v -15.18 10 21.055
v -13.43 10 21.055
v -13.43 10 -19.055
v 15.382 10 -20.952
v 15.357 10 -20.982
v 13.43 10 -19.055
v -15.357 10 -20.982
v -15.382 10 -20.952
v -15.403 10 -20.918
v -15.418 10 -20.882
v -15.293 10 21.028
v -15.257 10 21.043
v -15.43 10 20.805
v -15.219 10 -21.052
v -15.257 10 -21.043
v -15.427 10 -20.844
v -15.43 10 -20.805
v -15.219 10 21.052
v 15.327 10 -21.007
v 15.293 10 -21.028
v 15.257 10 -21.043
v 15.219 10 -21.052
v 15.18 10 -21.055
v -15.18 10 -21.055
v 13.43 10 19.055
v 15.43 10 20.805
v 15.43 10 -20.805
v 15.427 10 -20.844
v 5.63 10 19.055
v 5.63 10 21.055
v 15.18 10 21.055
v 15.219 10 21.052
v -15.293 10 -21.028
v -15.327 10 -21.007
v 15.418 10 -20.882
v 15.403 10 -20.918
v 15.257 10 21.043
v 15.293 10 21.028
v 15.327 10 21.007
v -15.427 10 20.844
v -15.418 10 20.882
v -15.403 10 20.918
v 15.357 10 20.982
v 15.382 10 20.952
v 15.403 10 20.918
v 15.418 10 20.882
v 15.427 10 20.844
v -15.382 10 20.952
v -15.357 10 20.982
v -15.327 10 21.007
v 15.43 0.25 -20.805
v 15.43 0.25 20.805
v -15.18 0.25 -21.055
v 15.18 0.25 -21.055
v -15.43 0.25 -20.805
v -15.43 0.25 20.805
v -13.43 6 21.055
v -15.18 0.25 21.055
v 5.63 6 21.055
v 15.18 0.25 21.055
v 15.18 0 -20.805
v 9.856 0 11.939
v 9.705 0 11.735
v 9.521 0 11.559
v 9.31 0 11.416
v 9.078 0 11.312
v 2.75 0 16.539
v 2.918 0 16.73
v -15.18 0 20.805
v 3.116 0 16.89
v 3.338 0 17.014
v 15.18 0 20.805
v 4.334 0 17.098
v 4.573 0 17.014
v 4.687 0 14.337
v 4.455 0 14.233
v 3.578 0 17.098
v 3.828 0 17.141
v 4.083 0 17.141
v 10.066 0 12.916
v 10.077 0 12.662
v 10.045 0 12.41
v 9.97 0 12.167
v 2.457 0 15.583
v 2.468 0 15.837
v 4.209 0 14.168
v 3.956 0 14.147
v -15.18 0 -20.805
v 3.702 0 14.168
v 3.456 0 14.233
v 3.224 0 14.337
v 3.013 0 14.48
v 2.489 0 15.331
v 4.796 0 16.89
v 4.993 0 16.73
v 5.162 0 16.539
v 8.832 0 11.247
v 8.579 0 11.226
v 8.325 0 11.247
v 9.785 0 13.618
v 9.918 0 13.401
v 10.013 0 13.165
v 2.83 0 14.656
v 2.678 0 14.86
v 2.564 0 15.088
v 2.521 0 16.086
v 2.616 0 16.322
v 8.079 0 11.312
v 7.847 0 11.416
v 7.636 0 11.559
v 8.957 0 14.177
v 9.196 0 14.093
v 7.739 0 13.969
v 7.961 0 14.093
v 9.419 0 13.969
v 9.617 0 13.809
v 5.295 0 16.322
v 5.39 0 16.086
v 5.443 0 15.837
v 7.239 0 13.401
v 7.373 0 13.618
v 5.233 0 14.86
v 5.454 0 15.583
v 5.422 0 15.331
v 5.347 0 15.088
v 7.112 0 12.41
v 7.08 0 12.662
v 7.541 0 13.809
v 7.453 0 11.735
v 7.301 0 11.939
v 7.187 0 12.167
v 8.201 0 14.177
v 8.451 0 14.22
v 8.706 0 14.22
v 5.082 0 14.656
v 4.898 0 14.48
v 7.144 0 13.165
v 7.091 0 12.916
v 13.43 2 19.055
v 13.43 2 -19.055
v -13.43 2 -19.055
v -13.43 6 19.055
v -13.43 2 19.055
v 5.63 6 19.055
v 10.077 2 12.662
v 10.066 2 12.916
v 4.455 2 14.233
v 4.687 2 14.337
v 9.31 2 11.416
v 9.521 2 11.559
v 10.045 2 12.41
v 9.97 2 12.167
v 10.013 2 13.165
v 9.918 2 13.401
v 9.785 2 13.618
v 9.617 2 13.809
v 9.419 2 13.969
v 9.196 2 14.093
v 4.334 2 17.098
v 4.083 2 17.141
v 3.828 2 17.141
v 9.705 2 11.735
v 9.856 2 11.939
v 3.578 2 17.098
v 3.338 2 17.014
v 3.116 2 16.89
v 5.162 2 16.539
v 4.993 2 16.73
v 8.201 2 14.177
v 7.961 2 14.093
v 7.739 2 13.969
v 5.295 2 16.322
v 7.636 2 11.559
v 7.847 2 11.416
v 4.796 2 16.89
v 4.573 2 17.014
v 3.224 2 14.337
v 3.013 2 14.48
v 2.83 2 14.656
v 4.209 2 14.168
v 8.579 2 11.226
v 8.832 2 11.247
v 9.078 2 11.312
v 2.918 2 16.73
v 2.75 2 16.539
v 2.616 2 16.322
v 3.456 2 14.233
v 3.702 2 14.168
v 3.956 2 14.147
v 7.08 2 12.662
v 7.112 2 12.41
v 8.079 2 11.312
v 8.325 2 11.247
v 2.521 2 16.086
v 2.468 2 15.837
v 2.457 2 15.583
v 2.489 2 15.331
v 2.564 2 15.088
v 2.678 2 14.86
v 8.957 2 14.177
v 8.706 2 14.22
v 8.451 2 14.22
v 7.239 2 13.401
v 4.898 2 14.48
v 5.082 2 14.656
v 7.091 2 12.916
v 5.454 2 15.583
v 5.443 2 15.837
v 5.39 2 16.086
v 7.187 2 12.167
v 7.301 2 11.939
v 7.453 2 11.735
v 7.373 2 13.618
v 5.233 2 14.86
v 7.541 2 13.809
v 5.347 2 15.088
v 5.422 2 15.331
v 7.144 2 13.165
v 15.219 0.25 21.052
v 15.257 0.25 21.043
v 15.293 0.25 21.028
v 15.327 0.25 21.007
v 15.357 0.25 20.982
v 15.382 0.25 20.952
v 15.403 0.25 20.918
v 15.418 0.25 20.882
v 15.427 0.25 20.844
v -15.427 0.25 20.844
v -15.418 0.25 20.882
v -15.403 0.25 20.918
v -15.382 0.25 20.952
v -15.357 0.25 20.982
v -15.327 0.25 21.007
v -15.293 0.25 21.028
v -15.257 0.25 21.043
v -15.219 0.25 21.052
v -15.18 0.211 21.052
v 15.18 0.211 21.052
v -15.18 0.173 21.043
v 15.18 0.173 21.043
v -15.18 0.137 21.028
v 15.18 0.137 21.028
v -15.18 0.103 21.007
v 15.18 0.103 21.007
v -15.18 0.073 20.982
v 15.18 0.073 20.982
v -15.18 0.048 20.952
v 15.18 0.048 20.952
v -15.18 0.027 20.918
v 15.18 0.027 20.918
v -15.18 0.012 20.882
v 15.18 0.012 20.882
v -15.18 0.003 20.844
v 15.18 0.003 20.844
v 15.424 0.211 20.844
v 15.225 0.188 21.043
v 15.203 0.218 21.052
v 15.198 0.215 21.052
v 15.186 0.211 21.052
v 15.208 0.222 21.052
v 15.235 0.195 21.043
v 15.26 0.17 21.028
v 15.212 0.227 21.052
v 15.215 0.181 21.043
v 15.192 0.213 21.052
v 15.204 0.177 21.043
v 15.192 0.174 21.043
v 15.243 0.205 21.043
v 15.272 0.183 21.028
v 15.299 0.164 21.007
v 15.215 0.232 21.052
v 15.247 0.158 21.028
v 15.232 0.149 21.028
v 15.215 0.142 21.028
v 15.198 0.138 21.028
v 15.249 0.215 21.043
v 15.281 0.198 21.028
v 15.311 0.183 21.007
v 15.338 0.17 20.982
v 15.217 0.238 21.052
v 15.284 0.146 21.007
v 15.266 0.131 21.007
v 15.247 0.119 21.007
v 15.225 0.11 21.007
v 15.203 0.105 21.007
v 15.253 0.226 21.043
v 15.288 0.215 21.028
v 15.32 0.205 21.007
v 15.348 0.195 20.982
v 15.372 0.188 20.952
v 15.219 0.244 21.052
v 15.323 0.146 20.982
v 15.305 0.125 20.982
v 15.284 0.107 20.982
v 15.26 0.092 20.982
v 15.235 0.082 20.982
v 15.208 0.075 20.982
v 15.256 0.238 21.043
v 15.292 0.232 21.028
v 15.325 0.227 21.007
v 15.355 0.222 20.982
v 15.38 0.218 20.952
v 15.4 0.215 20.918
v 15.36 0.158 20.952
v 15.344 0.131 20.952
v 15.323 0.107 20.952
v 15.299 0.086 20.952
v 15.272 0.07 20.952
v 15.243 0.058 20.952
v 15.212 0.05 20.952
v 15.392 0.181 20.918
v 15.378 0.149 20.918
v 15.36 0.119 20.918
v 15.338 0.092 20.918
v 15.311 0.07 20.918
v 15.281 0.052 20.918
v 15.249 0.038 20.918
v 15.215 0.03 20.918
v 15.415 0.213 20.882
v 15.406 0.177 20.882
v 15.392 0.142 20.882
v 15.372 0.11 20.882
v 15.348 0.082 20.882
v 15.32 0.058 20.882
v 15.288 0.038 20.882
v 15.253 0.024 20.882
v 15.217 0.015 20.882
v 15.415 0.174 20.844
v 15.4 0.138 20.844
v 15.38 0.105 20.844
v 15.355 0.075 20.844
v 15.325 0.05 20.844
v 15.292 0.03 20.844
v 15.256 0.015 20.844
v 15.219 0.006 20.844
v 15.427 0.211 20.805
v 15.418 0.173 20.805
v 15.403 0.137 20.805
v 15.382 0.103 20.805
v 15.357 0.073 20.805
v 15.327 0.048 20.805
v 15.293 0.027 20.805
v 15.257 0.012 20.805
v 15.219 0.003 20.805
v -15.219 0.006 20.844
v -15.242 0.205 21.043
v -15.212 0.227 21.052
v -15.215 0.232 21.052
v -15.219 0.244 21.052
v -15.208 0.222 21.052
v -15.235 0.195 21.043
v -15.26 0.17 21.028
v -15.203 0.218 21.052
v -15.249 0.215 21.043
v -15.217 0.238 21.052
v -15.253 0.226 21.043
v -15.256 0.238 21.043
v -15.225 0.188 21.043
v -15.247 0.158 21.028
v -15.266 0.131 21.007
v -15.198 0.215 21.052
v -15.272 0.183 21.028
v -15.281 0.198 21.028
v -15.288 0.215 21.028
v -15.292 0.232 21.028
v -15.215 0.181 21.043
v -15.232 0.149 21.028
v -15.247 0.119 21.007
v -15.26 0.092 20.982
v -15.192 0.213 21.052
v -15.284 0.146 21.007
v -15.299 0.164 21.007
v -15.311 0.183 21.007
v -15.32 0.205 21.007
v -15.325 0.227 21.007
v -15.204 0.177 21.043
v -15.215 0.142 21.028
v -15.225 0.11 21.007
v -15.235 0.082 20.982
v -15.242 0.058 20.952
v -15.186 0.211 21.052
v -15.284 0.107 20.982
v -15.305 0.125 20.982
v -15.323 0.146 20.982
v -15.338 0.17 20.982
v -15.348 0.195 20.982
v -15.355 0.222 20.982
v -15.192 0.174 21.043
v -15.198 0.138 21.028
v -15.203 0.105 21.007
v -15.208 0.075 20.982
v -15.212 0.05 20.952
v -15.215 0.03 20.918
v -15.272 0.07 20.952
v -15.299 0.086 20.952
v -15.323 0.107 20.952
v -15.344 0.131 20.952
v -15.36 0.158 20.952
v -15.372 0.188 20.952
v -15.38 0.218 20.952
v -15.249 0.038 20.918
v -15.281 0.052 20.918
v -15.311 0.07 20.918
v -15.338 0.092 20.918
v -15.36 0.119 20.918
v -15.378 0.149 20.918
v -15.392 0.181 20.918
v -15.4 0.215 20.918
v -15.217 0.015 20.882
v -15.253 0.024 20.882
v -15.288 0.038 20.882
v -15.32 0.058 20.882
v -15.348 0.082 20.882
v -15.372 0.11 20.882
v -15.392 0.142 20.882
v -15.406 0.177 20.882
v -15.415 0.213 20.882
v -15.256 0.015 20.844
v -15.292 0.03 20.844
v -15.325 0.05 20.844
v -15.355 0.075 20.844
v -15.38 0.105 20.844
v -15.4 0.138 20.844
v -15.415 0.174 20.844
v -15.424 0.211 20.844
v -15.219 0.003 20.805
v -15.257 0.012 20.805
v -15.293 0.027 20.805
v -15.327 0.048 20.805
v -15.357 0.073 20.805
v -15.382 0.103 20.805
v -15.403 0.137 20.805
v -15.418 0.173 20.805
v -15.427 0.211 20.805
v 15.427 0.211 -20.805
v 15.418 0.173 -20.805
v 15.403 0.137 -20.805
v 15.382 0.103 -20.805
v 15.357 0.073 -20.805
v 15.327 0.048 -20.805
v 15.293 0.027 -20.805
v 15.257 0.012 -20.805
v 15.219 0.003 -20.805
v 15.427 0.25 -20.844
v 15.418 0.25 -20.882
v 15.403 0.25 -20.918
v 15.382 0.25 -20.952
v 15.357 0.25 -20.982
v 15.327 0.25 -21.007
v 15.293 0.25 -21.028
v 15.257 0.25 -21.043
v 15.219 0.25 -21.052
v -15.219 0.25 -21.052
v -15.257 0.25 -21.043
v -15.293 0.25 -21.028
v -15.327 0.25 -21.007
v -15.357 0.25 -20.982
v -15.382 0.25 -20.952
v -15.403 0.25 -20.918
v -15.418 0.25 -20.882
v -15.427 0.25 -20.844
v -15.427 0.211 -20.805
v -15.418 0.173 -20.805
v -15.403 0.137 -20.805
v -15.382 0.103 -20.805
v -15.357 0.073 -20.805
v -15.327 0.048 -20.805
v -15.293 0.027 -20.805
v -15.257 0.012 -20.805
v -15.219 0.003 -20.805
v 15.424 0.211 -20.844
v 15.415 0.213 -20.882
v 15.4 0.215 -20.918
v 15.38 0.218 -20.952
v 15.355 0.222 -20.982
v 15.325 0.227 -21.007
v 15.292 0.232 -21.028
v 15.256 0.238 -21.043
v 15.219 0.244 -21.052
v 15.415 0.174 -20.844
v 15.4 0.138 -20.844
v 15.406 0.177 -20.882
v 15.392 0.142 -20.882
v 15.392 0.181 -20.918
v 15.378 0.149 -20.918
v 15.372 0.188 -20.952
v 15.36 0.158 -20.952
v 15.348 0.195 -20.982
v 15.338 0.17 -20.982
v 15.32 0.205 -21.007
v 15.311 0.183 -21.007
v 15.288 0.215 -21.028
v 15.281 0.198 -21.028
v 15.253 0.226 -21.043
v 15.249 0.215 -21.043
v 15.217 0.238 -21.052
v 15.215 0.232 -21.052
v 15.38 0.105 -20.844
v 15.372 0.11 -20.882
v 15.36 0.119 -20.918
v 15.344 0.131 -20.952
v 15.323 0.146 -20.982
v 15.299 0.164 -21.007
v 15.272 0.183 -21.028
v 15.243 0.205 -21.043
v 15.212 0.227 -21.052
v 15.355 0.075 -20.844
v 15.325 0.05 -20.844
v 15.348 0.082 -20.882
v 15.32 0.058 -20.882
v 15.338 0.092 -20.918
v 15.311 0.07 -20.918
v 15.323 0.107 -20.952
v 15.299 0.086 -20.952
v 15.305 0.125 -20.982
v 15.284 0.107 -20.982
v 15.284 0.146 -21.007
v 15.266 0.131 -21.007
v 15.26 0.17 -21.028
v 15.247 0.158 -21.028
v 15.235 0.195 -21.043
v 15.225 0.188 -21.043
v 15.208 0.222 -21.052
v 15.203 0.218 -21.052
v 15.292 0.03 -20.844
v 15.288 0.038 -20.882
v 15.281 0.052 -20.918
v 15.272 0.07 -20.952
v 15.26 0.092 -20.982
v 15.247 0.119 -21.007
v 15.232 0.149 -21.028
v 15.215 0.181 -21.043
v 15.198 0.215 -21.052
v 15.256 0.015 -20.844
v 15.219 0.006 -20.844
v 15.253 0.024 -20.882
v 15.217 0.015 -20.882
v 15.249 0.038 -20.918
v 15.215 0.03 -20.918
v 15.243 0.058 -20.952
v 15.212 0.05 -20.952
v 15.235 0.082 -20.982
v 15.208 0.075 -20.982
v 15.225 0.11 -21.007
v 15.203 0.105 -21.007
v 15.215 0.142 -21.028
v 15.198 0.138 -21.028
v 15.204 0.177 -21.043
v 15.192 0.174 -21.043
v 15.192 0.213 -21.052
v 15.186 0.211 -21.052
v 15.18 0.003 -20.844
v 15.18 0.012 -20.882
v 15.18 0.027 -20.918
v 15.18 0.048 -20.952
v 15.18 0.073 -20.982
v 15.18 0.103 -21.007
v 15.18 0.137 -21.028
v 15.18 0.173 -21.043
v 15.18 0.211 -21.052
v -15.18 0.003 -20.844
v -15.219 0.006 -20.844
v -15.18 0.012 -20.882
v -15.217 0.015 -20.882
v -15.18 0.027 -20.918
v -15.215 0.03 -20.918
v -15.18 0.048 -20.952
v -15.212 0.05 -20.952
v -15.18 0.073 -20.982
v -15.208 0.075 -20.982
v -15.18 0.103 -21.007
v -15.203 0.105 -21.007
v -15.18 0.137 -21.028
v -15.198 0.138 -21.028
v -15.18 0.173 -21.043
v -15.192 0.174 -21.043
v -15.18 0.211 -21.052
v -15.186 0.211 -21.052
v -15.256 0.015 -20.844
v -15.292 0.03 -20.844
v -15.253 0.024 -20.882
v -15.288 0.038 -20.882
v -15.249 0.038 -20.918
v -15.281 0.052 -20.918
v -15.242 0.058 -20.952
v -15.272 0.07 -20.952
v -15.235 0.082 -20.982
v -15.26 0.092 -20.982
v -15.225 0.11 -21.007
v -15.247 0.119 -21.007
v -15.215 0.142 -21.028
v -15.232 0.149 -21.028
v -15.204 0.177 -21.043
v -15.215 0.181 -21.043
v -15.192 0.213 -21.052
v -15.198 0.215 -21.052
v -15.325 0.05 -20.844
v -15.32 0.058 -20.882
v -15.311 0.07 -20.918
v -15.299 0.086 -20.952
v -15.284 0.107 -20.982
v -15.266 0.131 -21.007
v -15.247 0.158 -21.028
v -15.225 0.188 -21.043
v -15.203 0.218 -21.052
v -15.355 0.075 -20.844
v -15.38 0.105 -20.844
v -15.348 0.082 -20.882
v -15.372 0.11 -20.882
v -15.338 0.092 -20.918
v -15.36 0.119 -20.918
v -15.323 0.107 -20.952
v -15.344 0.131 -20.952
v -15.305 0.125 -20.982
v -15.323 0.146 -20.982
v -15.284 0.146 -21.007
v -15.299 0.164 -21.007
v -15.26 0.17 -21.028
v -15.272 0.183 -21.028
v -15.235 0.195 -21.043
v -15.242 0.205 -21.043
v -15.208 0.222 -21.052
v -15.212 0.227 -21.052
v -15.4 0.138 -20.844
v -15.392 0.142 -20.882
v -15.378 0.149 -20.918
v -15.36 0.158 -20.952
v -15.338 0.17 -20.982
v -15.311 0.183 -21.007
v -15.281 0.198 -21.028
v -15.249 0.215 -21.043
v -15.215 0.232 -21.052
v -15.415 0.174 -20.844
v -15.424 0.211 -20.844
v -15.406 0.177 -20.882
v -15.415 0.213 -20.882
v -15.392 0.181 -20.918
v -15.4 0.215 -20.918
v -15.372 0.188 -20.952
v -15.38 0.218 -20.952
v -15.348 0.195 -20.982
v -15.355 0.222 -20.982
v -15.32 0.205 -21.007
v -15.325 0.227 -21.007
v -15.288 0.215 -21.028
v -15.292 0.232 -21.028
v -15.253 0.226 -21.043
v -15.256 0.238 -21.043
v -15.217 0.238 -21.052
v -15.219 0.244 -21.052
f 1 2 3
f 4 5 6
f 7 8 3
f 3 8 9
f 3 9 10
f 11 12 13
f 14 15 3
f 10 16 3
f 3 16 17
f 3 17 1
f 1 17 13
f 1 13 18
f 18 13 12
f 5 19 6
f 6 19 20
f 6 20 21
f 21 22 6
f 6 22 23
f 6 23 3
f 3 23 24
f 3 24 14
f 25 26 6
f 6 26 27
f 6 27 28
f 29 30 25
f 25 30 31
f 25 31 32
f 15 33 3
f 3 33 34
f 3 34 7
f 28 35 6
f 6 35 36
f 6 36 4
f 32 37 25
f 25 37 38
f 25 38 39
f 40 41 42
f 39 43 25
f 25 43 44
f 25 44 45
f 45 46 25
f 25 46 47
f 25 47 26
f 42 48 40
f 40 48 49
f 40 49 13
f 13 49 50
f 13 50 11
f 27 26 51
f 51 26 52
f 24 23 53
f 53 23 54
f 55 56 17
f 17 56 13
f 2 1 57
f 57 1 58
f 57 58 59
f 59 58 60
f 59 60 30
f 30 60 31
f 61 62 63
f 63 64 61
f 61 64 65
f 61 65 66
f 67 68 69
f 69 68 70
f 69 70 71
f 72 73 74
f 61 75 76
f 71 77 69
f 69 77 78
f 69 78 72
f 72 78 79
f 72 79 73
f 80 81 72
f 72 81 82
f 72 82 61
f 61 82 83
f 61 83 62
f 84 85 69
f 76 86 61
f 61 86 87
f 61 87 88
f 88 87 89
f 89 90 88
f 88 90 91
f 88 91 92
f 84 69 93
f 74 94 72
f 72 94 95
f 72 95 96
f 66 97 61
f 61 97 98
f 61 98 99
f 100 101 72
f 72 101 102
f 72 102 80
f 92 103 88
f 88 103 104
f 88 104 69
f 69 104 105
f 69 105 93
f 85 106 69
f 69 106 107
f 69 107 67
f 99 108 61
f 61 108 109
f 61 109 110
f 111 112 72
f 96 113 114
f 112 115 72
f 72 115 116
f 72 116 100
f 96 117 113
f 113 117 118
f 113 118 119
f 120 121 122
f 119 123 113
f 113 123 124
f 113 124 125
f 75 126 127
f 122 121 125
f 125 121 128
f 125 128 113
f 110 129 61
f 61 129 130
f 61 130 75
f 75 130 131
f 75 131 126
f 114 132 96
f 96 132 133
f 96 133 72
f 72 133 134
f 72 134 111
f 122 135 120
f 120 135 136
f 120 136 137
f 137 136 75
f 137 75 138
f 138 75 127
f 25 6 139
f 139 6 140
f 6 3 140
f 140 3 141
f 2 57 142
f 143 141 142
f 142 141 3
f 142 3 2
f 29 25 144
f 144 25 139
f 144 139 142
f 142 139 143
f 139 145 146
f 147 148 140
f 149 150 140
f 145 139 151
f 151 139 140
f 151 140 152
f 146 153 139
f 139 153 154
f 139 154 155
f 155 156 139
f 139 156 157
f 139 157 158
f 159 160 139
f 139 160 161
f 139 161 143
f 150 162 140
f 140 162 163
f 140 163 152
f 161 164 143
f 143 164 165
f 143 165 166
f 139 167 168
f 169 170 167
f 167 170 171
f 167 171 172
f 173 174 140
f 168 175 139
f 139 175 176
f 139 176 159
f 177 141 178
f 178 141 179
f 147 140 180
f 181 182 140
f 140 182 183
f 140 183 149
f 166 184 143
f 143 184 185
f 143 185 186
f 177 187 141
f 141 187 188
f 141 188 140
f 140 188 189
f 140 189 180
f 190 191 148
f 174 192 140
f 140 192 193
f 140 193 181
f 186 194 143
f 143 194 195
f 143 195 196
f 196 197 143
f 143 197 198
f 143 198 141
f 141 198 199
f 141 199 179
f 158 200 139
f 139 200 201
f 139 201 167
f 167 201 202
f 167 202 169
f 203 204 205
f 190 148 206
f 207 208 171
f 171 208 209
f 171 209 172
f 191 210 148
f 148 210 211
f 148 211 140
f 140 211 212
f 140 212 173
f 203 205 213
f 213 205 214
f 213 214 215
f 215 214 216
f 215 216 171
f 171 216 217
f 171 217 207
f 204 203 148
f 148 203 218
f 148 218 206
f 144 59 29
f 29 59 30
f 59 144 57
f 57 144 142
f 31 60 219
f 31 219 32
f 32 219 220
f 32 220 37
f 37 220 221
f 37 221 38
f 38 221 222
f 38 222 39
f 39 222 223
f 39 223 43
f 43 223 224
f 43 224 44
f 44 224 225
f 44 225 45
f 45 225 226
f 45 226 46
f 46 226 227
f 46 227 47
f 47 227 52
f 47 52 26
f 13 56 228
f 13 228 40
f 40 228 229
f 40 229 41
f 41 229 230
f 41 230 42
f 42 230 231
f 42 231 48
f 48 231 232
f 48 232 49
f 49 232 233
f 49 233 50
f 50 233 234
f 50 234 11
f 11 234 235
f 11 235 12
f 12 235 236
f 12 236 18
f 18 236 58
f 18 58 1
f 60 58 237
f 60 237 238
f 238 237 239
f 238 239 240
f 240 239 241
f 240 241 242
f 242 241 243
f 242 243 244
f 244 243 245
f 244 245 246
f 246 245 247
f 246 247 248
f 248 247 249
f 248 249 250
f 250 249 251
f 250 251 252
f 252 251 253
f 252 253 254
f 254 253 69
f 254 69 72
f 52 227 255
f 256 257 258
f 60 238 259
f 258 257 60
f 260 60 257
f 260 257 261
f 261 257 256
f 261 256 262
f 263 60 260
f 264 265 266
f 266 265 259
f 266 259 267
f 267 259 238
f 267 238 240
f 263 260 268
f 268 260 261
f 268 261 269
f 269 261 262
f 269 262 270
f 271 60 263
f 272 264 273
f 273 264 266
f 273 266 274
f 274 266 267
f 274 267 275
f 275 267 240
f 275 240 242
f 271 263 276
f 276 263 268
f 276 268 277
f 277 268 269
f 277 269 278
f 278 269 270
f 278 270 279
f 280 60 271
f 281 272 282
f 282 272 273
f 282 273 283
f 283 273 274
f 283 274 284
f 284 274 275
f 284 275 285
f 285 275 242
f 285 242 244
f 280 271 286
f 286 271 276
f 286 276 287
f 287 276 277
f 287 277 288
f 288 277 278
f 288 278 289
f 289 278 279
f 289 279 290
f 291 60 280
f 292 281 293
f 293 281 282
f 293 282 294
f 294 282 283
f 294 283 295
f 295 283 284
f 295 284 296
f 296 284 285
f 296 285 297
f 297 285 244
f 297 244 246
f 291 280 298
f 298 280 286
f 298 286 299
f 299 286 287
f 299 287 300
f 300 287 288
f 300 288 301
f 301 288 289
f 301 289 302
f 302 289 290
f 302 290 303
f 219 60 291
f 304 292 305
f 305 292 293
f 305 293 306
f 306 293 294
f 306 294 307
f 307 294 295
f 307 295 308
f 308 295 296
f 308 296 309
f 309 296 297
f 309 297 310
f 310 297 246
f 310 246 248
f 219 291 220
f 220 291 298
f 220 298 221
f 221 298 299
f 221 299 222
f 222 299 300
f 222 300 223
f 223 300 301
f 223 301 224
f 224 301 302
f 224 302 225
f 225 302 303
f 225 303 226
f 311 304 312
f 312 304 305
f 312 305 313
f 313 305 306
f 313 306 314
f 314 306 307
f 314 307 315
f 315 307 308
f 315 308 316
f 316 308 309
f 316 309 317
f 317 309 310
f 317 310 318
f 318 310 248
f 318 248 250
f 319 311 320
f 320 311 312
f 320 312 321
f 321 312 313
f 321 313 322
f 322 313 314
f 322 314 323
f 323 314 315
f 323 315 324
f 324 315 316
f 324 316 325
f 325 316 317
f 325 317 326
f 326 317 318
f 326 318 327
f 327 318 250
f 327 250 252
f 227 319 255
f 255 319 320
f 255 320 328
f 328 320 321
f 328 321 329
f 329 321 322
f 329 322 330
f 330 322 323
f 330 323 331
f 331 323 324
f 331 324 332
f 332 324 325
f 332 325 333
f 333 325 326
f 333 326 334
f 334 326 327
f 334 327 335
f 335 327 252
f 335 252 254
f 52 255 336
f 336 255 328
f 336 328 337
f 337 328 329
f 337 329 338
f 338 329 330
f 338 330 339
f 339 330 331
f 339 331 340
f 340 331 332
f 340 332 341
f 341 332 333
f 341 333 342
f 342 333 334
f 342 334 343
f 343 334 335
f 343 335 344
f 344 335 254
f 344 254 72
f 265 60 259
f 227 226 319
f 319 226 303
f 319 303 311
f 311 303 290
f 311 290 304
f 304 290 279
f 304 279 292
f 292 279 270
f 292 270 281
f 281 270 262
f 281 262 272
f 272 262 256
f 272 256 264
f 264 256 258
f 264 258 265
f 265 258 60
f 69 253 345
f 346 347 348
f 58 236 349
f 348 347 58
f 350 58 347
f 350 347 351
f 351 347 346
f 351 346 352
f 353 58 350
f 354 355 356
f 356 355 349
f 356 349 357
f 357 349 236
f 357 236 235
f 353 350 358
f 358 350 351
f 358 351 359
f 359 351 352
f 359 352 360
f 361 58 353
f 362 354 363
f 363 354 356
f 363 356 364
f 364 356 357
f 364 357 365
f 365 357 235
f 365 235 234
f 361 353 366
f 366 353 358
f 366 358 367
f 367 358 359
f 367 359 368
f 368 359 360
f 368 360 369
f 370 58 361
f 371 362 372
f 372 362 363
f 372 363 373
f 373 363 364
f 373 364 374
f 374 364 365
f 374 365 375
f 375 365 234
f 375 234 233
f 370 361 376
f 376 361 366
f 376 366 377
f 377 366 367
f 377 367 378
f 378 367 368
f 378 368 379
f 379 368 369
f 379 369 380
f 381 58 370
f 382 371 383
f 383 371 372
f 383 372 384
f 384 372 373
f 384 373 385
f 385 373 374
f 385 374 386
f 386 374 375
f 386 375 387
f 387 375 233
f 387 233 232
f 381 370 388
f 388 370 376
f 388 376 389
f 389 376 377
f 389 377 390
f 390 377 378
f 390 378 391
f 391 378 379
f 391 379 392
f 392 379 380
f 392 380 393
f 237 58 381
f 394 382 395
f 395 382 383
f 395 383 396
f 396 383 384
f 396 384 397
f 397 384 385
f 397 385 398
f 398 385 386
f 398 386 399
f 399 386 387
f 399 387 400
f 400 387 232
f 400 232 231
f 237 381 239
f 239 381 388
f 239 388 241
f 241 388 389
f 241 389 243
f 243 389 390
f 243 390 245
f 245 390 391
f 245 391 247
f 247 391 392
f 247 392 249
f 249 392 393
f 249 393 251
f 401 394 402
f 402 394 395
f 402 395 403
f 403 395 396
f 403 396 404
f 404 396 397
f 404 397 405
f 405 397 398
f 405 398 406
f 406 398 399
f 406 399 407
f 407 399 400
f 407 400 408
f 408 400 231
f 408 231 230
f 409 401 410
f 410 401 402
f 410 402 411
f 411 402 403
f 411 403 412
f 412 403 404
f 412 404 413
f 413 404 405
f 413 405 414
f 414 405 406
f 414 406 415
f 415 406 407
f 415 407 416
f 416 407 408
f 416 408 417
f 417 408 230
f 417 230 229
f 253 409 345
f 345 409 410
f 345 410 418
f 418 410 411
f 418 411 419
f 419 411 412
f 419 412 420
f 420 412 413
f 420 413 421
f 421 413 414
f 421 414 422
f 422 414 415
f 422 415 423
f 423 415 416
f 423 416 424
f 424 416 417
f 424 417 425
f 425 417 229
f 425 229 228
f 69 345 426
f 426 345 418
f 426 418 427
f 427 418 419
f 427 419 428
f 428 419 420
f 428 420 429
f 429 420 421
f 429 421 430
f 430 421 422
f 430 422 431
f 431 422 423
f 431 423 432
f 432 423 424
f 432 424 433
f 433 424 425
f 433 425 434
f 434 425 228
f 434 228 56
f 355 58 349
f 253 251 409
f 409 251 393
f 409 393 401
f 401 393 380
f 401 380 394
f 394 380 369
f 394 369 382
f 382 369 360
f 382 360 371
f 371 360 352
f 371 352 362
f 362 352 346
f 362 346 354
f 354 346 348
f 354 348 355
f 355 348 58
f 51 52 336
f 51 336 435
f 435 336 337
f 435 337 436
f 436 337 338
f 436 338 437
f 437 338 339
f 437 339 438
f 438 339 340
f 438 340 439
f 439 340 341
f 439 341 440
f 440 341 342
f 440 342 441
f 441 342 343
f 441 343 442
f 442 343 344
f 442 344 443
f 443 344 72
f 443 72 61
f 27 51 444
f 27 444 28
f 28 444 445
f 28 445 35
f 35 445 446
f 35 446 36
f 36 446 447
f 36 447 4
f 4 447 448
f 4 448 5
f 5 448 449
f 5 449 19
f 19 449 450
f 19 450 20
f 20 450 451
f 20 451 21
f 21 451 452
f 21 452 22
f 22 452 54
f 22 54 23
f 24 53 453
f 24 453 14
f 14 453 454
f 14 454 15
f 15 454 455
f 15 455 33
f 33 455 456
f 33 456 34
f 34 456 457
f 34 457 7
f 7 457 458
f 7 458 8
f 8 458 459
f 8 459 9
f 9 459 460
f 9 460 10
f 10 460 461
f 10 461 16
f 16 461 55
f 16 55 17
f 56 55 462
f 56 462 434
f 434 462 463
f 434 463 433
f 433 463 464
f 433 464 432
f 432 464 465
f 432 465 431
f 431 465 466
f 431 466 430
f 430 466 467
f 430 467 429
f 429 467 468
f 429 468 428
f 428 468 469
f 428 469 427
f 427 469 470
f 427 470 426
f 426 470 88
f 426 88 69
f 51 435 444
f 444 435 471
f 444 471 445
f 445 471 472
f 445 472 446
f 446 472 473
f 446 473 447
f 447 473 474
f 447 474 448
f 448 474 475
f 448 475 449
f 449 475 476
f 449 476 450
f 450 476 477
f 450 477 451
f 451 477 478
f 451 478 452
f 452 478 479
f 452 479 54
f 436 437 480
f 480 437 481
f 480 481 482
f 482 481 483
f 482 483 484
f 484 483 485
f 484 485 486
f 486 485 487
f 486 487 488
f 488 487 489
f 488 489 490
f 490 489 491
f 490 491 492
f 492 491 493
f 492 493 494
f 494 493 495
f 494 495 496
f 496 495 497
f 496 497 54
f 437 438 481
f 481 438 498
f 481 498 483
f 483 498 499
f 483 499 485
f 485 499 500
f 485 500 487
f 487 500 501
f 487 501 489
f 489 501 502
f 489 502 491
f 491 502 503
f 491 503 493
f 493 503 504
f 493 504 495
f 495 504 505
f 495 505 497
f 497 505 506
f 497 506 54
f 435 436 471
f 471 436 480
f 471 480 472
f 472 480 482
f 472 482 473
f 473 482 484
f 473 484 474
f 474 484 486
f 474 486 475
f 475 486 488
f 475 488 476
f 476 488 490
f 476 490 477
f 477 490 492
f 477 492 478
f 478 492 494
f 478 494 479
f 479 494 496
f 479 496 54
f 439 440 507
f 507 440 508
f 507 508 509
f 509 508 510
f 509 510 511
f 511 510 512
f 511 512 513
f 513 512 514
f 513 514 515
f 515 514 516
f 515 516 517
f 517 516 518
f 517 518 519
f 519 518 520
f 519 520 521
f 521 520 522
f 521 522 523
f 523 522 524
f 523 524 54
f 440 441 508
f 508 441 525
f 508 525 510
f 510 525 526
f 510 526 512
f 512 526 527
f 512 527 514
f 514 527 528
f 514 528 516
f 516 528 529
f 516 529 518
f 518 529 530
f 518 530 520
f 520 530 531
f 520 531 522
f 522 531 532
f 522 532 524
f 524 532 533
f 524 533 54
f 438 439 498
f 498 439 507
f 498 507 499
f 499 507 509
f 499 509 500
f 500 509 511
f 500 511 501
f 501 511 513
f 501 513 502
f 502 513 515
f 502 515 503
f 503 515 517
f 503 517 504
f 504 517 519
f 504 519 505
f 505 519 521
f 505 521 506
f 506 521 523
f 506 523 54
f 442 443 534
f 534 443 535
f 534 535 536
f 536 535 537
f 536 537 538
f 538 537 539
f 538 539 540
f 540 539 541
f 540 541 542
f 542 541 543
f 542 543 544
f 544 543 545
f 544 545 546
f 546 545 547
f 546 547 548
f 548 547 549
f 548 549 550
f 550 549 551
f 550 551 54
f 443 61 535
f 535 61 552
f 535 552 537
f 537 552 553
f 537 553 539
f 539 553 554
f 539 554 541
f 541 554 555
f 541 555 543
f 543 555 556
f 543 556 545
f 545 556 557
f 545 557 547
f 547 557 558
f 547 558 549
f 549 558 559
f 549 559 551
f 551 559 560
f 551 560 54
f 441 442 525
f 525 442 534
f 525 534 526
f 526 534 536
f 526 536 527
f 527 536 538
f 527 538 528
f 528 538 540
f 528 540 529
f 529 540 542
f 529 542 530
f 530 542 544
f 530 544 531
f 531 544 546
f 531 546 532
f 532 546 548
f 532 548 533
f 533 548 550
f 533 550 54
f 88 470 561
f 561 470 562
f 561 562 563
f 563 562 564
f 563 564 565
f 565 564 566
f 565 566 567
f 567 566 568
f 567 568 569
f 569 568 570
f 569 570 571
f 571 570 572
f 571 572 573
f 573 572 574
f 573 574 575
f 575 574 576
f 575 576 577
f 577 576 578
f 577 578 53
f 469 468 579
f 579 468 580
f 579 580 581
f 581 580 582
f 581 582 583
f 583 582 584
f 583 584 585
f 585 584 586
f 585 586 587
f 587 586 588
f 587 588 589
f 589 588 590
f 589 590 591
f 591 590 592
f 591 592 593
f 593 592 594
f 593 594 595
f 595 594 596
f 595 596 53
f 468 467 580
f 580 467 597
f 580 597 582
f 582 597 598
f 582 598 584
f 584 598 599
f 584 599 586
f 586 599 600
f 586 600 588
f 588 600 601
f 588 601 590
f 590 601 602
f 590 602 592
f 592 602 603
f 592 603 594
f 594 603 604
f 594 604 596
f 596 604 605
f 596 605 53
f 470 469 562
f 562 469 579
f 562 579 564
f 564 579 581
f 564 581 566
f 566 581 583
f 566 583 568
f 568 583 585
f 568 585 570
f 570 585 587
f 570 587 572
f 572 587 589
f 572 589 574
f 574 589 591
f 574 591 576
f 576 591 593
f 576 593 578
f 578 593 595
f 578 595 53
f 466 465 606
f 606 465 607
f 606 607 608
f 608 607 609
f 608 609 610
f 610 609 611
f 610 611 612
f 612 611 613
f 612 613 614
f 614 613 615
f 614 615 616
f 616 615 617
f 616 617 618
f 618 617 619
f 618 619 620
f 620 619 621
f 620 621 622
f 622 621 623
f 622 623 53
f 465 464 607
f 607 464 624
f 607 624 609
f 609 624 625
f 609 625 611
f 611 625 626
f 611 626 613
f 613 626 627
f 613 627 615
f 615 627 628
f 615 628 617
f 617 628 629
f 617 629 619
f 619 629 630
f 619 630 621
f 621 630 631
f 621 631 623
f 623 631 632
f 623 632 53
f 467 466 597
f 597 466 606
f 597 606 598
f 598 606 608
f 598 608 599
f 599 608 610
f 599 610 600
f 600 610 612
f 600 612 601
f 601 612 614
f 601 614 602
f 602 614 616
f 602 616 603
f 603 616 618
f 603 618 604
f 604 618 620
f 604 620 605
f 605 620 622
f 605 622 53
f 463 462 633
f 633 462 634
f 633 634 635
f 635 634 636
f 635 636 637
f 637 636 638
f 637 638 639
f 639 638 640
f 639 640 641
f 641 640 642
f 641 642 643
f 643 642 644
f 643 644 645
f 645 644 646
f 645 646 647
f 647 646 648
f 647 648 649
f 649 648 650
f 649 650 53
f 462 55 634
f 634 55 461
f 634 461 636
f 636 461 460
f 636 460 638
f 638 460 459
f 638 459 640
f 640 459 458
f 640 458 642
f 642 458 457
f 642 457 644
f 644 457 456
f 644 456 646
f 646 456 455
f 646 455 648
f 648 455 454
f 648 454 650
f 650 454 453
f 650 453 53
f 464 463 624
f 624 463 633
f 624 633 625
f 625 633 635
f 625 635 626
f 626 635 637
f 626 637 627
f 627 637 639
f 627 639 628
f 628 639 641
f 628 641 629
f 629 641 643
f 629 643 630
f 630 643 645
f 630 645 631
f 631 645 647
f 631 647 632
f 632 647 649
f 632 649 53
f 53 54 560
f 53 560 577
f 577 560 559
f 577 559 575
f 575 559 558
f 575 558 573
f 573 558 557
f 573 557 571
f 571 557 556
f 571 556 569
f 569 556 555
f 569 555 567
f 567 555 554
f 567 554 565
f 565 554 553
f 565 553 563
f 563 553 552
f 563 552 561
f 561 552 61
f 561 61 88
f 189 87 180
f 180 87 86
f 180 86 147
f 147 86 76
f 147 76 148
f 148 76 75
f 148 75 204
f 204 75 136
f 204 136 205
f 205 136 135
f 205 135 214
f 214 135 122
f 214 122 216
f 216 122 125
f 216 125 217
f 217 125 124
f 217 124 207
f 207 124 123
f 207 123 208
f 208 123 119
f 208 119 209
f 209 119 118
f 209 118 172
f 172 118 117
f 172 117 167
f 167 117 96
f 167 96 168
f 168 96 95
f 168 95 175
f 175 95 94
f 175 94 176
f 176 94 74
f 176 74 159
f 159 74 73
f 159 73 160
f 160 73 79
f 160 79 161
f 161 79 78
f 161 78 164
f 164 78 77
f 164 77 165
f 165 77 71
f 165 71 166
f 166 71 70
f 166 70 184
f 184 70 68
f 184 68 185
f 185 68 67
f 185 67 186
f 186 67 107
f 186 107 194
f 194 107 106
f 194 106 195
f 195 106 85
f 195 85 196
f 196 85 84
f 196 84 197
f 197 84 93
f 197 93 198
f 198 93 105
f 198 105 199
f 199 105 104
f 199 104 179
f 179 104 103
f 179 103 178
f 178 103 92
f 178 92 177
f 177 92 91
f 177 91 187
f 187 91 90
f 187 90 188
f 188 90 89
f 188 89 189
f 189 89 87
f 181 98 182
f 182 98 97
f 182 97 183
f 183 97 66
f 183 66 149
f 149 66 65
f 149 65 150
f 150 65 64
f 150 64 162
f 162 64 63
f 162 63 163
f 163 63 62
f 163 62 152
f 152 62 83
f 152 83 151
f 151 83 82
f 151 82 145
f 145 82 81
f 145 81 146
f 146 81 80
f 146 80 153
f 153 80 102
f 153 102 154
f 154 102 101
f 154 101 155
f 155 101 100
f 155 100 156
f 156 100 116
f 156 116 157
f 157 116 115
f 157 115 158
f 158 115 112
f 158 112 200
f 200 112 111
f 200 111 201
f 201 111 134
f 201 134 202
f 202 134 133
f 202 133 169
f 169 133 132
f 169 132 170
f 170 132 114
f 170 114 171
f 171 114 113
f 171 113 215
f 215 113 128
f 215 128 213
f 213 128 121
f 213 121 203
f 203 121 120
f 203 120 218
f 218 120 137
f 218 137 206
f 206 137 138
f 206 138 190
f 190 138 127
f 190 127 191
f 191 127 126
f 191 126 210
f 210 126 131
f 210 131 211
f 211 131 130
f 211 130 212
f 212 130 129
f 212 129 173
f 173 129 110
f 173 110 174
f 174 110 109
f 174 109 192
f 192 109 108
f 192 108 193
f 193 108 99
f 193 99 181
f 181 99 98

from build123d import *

# Parameters (mm, degrees)
SKETCH1_W           = 30.86
SKETCH1_H           = 42.11
BOSS_EXTRUDE1_DEPTH = 10
SHELL2_T            = -2
SKETCH4_W           = 19.06
SKETCH4_H           = 2
CUT_EXTRUDE1_DEPTH  = 4
FILLET1_R           = 0.25
SKETCH5_R           = 1.5
CUT_EXTRUDE2_DEPTH  = 28.953495756
SKETCH6_R           = 1.5
CUT_EXTRUDE3_DEPTH  = 28.953495756


with BuildPart() as part:
    # Sketch1 → Boss-Extrude1 (new body)
    with BuildSketch(Plane(origin=(0, 0, 0), x_dir=(1, 0, 0), z_dir=(0, 1, 0))):
        Rectangle(SKETCH1_W, SKETCH1_H)
    extrude(amount=BOSS_EXTRUDE1_DEPTH)

    # Shell2
    shell2_openings = [part.faces().sort_by_distance(p)[0] for p in [
        (0, 10, 0),
    ]]
    offset(amount=SHELL2_T, openings=shell2_openings, kind=Kind.INTERSECTION)

    # Sketch4 → Cut-Extrude1 (cut)
    with BuildSketch(Plane(origin=(0, 10, 0), x_dir=(1, 0, 0), z_dir=(0, 1, 0))):
        with Locations((-3.9, -20.055)):
            Rectangle(SKETCH4_W, SKETCH4_H)
    extrude(amount=-CUT_EXTRUDE1_DEPTH, mode=Mode.SUBTRACT)

    # Fillet1
    fillet1_edges = [part.edges().sort_by_distance(p)[0] for p in [
        (0, 0, 21.055),
        (-15.43, 0, 0),
        (0, 0, -21.055),
        (15.43, 0, 0),
        (15.43, 5, 21.055),
        (-15.43, 5, 21.055),
        (-15.43, 5, -21.055),
        (15.43, 5, -21.055),
    ]]
    fillet(fillet1_edges, radius=FILLET1_R)

    # Sketch5 → Cut-Extrude2 (cut, through all)
    with BuildSketch(Plane.XZ):
        with Locations(Location((3.955545026, 15.646822422, 0), (0, 0, 270))):
            Circle(SKETCH5_R)
    extrude(amount=-CUT_EXTRUDE2_DEPTH, mode=Mode.SUBTRACT)

    # Sketch6 → Cut-Extrude3 (cut, through all)
    with BuildSketch(Plane.XZ):
        with Locations(Location((8.578599531, 12.725824803, 0), (0, 0, 270))):
            Circle(SKETCH6_R)
    extrude(amount=-CUT_EXTRUDE3_DEPTH, mode=Mode.SUBTRACT)


solid = part.part
